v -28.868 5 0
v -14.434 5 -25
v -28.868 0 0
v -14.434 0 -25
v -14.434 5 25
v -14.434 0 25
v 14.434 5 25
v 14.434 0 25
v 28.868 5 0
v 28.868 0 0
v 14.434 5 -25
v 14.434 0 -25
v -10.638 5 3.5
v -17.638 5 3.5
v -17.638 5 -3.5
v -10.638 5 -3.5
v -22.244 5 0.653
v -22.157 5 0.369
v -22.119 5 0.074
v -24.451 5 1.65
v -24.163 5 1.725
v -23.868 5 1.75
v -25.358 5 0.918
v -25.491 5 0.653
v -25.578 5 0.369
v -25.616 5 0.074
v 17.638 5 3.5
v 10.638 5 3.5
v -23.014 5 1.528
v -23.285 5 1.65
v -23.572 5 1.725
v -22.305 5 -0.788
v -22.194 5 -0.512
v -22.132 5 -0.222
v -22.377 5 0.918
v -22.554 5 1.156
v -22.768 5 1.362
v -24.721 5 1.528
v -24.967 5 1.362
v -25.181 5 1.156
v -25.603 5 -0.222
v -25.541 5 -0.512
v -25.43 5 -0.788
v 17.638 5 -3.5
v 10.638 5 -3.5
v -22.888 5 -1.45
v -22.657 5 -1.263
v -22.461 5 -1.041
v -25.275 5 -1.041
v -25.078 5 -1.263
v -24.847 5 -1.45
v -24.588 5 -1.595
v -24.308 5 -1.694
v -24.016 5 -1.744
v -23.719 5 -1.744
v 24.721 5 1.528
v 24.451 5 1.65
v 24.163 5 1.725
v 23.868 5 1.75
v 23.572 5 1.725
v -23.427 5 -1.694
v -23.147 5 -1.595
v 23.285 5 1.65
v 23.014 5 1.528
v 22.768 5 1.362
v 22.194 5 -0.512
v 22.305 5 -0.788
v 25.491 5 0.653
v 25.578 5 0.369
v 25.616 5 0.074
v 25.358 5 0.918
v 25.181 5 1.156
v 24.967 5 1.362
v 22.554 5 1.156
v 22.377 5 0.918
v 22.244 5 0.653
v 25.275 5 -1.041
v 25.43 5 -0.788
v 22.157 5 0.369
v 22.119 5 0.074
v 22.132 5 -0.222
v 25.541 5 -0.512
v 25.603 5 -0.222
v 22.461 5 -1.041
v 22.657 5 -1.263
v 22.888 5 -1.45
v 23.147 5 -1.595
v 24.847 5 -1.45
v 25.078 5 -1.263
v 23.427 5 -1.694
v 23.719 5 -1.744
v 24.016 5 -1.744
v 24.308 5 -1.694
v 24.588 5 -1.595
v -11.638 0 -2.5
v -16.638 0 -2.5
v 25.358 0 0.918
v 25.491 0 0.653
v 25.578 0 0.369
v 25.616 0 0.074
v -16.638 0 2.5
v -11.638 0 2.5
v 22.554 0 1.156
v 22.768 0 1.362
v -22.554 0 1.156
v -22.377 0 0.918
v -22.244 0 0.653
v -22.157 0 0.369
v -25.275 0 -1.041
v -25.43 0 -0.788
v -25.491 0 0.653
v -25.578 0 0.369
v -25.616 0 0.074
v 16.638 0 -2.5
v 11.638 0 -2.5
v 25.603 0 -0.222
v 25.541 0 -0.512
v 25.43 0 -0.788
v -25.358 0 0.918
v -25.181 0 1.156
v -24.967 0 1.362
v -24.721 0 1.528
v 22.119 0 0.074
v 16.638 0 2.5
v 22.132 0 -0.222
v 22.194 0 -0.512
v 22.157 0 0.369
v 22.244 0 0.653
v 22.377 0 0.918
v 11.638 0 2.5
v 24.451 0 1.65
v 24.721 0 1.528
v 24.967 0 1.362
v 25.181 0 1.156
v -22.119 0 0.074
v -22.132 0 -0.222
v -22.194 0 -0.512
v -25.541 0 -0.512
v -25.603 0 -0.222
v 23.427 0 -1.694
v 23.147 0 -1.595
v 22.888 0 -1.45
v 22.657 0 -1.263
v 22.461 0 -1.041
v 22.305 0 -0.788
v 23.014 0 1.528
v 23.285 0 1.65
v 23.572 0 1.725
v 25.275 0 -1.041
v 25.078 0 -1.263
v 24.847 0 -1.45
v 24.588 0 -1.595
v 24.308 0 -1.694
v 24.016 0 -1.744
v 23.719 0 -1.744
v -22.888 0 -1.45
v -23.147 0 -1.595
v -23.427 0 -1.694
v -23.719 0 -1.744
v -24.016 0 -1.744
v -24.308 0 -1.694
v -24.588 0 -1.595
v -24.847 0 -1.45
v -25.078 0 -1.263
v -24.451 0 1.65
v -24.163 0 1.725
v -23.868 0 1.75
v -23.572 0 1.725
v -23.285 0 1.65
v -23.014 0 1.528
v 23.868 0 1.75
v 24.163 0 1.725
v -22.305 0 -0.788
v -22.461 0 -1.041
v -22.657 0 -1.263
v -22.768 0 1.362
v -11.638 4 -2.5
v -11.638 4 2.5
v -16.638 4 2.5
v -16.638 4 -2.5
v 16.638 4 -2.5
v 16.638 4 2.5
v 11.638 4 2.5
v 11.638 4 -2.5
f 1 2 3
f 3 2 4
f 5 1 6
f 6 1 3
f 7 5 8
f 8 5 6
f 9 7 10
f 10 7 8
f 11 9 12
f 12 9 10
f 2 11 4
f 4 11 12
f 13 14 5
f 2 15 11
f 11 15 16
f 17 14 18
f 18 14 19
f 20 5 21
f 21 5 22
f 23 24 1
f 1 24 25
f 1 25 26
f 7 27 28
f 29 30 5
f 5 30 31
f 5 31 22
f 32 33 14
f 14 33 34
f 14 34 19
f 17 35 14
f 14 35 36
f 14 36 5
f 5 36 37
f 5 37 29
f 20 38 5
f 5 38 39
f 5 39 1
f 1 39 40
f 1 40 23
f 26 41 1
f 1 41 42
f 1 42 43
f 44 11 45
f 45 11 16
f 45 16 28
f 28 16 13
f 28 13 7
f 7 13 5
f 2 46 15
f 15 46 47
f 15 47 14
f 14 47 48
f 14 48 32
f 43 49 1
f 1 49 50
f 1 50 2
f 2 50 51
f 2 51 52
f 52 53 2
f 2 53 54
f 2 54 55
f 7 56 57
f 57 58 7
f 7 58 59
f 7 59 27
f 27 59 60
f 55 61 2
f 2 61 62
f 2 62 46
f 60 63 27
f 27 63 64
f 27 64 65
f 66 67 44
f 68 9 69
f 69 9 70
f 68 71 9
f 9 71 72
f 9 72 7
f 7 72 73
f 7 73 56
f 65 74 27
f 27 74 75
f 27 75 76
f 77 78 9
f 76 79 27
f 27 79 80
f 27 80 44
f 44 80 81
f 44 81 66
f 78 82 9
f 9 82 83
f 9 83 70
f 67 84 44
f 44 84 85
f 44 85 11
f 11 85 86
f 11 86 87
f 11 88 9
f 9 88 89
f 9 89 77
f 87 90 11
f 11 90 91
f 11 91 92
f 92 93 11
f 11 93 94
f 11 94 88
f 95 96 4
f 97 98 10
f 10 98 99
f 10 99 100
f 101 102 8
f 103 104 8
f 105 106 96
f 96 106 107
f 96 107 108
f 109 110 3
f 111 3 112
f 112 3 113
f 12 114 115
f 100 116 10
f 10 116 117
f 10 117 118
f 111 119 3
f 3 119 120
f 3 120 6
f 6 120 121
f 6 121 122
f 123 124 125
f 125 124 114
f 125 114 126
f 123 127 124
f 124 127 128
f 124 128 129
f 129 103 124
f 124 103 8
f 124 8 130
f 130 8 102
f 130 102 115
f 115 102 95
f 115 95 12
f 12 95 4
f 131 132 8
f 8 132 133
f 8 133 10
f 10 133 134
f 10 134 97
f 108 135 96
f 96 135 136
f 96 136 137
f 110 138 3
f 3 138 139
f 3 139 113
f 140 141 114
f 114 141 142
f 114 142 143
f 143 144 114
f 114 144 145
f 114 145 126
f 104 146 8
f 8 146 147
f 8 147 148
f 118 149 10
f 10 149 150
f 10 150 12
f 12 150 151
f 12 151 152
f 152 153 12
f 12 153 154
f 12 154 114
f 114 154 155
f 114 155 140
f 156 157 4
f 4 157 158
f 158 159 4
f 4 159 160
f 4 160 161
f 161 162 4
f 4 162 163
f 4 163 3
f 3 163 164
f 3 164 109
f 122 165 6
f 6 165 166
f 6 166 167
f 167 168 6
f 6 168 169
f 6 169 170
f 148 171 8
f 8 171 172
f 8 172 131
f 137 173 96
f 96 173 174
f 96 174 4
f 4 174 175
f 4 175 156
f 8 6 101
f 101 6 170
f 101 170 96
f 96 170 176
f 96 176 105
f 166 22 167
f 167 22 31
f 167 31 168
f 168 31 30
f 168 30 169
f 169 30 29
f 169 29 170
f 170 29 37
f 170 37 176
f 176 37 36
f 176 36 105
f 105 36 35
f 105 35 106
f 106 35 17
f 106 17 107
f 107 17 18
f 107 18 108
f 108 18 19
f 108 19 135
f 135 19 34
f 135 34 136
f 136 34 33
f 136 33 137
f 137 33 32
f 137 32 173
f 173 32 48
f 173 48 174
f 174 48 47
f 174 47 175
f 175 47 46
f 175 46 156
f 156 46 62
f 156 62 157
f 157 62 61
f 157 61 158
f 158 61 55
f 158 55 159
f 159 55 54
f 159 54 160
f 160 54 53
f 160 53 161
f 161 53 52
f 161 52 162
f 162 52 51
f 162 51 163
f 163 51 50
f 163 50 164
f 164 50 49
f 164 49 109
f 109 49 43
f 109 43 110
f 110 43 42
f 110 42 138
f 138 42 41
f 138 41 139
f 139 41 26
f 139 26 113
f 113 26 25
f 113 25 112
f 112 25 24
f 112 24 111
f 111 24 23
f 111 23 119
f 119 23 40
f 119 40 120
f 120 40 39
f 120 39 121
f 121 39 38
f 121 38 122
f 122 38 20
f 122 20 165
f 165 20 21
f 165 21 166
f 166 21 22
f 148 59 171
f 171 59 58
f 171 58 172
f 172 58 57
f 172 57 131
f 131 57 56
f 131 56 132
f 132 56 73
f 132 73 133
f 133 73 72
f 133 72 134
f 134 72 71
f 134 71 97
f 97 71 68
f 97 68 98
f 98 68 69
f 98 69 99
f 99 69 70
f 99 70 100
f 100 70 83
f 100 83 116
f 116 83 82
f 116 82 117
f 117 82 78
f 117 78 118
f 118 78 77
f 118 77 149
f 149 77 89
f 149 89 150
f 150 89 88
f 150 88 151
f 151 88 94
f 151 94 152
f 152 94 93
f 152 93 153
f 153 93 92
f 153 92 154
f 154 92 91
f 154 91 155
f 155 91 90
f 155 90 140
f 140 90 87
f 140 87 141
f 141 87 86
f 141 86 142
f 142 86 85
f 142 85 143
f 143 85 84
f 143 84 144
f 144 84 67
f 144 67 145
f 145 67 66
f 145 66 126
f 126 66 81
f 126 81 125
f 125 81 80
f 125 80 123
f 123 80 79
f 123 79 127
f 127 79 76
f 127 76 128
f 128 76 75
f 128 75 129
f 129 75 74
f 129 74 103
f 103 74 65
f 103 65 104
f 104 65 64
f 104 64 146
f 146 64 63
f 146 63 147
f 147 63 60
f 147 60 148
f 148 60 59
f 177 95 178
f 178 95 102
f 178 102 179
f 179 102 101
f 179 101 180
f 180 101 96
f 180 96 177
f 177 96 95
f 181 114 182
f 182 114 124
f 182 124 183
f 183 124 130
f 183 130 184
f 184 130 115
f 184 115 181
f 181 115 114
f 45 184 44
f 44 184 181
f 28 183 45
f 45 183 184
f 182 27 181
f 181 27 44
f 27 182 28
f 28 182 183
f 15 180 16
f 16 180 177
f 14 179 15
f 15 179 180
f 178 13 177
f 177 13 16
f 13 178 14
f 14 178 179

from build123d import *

# Parameters (mm, degrees)
BOSS_EXTRUDE1_DEPTH = 5
SKETCH2_R           = 1.75
SKETCH2_W           = 5
SKETCH2_H           = 5
CUT_EXTRUDE1_DEPTH  = 5
CHAMFER1_SIZE       = 1


with BuildPart() as part:
    # Sketch1 → Boss-Extrude1 (new body)
    with BuildSketch(Plane(origin=(0, 0, 0), x_dir=(1, 0, 0), z_dir=(0, 1, 0))):
        Polygon((-28.867513459, 0), (-14.43375673, -25), (14.43375673, -25), (28.867513459, 0), (14.43375673, 25), (-14.43375673, 25), align=None)
    extrude(amount=BOSS_EXTRUDE1_DEPTH)

    # Sketch2 → Cut-Extrude1 (cut)
    with BuildSketch(Plane(origin=(0, 5, 0), x_dir=(1, 0, 0), z_dir=(0, 1, 0))):
        with Locations(Location((-23.867513459, 0, 0), (0, 0, 270))):
            Circle(SKETCH2_R)
        with Locations(Location((23.867513459, 0, 0), (0, 0, 270))):
            Circle(SKETCH2_R)
        with Locations((-14.137513459, 0)):
            Rectangle(SKETCH2_W, SKETCH2_H)
        with Locations((14.137513459, 0)):
            Rectangle(SKETCH2_W, SKETCH2_H)
    extrude(amount=-CUT_EXTRUDE1_DEPTH, mode=Mode.SUBTRACT)

    # Chamfer1
    chamfer1_edges = [part.edges().sort_by_distance(p)[0] for p in [
        (-11.637513459, 5, 0),
        (-14.137513459, 5, -2.5),
        (-16.637513459, 5, 0),
        (-14.137513459, 5, 2.5),
        (16.637513459, 5, 0),
        (14.137513459, 5, -2.5),
        (11.637513459, 5, 0),
        (14.137513459, 5, 2.5),
    ]]
    chamfer(chamfer1_edges, length=CHAMFER1_SIZE)


solid = part.part
